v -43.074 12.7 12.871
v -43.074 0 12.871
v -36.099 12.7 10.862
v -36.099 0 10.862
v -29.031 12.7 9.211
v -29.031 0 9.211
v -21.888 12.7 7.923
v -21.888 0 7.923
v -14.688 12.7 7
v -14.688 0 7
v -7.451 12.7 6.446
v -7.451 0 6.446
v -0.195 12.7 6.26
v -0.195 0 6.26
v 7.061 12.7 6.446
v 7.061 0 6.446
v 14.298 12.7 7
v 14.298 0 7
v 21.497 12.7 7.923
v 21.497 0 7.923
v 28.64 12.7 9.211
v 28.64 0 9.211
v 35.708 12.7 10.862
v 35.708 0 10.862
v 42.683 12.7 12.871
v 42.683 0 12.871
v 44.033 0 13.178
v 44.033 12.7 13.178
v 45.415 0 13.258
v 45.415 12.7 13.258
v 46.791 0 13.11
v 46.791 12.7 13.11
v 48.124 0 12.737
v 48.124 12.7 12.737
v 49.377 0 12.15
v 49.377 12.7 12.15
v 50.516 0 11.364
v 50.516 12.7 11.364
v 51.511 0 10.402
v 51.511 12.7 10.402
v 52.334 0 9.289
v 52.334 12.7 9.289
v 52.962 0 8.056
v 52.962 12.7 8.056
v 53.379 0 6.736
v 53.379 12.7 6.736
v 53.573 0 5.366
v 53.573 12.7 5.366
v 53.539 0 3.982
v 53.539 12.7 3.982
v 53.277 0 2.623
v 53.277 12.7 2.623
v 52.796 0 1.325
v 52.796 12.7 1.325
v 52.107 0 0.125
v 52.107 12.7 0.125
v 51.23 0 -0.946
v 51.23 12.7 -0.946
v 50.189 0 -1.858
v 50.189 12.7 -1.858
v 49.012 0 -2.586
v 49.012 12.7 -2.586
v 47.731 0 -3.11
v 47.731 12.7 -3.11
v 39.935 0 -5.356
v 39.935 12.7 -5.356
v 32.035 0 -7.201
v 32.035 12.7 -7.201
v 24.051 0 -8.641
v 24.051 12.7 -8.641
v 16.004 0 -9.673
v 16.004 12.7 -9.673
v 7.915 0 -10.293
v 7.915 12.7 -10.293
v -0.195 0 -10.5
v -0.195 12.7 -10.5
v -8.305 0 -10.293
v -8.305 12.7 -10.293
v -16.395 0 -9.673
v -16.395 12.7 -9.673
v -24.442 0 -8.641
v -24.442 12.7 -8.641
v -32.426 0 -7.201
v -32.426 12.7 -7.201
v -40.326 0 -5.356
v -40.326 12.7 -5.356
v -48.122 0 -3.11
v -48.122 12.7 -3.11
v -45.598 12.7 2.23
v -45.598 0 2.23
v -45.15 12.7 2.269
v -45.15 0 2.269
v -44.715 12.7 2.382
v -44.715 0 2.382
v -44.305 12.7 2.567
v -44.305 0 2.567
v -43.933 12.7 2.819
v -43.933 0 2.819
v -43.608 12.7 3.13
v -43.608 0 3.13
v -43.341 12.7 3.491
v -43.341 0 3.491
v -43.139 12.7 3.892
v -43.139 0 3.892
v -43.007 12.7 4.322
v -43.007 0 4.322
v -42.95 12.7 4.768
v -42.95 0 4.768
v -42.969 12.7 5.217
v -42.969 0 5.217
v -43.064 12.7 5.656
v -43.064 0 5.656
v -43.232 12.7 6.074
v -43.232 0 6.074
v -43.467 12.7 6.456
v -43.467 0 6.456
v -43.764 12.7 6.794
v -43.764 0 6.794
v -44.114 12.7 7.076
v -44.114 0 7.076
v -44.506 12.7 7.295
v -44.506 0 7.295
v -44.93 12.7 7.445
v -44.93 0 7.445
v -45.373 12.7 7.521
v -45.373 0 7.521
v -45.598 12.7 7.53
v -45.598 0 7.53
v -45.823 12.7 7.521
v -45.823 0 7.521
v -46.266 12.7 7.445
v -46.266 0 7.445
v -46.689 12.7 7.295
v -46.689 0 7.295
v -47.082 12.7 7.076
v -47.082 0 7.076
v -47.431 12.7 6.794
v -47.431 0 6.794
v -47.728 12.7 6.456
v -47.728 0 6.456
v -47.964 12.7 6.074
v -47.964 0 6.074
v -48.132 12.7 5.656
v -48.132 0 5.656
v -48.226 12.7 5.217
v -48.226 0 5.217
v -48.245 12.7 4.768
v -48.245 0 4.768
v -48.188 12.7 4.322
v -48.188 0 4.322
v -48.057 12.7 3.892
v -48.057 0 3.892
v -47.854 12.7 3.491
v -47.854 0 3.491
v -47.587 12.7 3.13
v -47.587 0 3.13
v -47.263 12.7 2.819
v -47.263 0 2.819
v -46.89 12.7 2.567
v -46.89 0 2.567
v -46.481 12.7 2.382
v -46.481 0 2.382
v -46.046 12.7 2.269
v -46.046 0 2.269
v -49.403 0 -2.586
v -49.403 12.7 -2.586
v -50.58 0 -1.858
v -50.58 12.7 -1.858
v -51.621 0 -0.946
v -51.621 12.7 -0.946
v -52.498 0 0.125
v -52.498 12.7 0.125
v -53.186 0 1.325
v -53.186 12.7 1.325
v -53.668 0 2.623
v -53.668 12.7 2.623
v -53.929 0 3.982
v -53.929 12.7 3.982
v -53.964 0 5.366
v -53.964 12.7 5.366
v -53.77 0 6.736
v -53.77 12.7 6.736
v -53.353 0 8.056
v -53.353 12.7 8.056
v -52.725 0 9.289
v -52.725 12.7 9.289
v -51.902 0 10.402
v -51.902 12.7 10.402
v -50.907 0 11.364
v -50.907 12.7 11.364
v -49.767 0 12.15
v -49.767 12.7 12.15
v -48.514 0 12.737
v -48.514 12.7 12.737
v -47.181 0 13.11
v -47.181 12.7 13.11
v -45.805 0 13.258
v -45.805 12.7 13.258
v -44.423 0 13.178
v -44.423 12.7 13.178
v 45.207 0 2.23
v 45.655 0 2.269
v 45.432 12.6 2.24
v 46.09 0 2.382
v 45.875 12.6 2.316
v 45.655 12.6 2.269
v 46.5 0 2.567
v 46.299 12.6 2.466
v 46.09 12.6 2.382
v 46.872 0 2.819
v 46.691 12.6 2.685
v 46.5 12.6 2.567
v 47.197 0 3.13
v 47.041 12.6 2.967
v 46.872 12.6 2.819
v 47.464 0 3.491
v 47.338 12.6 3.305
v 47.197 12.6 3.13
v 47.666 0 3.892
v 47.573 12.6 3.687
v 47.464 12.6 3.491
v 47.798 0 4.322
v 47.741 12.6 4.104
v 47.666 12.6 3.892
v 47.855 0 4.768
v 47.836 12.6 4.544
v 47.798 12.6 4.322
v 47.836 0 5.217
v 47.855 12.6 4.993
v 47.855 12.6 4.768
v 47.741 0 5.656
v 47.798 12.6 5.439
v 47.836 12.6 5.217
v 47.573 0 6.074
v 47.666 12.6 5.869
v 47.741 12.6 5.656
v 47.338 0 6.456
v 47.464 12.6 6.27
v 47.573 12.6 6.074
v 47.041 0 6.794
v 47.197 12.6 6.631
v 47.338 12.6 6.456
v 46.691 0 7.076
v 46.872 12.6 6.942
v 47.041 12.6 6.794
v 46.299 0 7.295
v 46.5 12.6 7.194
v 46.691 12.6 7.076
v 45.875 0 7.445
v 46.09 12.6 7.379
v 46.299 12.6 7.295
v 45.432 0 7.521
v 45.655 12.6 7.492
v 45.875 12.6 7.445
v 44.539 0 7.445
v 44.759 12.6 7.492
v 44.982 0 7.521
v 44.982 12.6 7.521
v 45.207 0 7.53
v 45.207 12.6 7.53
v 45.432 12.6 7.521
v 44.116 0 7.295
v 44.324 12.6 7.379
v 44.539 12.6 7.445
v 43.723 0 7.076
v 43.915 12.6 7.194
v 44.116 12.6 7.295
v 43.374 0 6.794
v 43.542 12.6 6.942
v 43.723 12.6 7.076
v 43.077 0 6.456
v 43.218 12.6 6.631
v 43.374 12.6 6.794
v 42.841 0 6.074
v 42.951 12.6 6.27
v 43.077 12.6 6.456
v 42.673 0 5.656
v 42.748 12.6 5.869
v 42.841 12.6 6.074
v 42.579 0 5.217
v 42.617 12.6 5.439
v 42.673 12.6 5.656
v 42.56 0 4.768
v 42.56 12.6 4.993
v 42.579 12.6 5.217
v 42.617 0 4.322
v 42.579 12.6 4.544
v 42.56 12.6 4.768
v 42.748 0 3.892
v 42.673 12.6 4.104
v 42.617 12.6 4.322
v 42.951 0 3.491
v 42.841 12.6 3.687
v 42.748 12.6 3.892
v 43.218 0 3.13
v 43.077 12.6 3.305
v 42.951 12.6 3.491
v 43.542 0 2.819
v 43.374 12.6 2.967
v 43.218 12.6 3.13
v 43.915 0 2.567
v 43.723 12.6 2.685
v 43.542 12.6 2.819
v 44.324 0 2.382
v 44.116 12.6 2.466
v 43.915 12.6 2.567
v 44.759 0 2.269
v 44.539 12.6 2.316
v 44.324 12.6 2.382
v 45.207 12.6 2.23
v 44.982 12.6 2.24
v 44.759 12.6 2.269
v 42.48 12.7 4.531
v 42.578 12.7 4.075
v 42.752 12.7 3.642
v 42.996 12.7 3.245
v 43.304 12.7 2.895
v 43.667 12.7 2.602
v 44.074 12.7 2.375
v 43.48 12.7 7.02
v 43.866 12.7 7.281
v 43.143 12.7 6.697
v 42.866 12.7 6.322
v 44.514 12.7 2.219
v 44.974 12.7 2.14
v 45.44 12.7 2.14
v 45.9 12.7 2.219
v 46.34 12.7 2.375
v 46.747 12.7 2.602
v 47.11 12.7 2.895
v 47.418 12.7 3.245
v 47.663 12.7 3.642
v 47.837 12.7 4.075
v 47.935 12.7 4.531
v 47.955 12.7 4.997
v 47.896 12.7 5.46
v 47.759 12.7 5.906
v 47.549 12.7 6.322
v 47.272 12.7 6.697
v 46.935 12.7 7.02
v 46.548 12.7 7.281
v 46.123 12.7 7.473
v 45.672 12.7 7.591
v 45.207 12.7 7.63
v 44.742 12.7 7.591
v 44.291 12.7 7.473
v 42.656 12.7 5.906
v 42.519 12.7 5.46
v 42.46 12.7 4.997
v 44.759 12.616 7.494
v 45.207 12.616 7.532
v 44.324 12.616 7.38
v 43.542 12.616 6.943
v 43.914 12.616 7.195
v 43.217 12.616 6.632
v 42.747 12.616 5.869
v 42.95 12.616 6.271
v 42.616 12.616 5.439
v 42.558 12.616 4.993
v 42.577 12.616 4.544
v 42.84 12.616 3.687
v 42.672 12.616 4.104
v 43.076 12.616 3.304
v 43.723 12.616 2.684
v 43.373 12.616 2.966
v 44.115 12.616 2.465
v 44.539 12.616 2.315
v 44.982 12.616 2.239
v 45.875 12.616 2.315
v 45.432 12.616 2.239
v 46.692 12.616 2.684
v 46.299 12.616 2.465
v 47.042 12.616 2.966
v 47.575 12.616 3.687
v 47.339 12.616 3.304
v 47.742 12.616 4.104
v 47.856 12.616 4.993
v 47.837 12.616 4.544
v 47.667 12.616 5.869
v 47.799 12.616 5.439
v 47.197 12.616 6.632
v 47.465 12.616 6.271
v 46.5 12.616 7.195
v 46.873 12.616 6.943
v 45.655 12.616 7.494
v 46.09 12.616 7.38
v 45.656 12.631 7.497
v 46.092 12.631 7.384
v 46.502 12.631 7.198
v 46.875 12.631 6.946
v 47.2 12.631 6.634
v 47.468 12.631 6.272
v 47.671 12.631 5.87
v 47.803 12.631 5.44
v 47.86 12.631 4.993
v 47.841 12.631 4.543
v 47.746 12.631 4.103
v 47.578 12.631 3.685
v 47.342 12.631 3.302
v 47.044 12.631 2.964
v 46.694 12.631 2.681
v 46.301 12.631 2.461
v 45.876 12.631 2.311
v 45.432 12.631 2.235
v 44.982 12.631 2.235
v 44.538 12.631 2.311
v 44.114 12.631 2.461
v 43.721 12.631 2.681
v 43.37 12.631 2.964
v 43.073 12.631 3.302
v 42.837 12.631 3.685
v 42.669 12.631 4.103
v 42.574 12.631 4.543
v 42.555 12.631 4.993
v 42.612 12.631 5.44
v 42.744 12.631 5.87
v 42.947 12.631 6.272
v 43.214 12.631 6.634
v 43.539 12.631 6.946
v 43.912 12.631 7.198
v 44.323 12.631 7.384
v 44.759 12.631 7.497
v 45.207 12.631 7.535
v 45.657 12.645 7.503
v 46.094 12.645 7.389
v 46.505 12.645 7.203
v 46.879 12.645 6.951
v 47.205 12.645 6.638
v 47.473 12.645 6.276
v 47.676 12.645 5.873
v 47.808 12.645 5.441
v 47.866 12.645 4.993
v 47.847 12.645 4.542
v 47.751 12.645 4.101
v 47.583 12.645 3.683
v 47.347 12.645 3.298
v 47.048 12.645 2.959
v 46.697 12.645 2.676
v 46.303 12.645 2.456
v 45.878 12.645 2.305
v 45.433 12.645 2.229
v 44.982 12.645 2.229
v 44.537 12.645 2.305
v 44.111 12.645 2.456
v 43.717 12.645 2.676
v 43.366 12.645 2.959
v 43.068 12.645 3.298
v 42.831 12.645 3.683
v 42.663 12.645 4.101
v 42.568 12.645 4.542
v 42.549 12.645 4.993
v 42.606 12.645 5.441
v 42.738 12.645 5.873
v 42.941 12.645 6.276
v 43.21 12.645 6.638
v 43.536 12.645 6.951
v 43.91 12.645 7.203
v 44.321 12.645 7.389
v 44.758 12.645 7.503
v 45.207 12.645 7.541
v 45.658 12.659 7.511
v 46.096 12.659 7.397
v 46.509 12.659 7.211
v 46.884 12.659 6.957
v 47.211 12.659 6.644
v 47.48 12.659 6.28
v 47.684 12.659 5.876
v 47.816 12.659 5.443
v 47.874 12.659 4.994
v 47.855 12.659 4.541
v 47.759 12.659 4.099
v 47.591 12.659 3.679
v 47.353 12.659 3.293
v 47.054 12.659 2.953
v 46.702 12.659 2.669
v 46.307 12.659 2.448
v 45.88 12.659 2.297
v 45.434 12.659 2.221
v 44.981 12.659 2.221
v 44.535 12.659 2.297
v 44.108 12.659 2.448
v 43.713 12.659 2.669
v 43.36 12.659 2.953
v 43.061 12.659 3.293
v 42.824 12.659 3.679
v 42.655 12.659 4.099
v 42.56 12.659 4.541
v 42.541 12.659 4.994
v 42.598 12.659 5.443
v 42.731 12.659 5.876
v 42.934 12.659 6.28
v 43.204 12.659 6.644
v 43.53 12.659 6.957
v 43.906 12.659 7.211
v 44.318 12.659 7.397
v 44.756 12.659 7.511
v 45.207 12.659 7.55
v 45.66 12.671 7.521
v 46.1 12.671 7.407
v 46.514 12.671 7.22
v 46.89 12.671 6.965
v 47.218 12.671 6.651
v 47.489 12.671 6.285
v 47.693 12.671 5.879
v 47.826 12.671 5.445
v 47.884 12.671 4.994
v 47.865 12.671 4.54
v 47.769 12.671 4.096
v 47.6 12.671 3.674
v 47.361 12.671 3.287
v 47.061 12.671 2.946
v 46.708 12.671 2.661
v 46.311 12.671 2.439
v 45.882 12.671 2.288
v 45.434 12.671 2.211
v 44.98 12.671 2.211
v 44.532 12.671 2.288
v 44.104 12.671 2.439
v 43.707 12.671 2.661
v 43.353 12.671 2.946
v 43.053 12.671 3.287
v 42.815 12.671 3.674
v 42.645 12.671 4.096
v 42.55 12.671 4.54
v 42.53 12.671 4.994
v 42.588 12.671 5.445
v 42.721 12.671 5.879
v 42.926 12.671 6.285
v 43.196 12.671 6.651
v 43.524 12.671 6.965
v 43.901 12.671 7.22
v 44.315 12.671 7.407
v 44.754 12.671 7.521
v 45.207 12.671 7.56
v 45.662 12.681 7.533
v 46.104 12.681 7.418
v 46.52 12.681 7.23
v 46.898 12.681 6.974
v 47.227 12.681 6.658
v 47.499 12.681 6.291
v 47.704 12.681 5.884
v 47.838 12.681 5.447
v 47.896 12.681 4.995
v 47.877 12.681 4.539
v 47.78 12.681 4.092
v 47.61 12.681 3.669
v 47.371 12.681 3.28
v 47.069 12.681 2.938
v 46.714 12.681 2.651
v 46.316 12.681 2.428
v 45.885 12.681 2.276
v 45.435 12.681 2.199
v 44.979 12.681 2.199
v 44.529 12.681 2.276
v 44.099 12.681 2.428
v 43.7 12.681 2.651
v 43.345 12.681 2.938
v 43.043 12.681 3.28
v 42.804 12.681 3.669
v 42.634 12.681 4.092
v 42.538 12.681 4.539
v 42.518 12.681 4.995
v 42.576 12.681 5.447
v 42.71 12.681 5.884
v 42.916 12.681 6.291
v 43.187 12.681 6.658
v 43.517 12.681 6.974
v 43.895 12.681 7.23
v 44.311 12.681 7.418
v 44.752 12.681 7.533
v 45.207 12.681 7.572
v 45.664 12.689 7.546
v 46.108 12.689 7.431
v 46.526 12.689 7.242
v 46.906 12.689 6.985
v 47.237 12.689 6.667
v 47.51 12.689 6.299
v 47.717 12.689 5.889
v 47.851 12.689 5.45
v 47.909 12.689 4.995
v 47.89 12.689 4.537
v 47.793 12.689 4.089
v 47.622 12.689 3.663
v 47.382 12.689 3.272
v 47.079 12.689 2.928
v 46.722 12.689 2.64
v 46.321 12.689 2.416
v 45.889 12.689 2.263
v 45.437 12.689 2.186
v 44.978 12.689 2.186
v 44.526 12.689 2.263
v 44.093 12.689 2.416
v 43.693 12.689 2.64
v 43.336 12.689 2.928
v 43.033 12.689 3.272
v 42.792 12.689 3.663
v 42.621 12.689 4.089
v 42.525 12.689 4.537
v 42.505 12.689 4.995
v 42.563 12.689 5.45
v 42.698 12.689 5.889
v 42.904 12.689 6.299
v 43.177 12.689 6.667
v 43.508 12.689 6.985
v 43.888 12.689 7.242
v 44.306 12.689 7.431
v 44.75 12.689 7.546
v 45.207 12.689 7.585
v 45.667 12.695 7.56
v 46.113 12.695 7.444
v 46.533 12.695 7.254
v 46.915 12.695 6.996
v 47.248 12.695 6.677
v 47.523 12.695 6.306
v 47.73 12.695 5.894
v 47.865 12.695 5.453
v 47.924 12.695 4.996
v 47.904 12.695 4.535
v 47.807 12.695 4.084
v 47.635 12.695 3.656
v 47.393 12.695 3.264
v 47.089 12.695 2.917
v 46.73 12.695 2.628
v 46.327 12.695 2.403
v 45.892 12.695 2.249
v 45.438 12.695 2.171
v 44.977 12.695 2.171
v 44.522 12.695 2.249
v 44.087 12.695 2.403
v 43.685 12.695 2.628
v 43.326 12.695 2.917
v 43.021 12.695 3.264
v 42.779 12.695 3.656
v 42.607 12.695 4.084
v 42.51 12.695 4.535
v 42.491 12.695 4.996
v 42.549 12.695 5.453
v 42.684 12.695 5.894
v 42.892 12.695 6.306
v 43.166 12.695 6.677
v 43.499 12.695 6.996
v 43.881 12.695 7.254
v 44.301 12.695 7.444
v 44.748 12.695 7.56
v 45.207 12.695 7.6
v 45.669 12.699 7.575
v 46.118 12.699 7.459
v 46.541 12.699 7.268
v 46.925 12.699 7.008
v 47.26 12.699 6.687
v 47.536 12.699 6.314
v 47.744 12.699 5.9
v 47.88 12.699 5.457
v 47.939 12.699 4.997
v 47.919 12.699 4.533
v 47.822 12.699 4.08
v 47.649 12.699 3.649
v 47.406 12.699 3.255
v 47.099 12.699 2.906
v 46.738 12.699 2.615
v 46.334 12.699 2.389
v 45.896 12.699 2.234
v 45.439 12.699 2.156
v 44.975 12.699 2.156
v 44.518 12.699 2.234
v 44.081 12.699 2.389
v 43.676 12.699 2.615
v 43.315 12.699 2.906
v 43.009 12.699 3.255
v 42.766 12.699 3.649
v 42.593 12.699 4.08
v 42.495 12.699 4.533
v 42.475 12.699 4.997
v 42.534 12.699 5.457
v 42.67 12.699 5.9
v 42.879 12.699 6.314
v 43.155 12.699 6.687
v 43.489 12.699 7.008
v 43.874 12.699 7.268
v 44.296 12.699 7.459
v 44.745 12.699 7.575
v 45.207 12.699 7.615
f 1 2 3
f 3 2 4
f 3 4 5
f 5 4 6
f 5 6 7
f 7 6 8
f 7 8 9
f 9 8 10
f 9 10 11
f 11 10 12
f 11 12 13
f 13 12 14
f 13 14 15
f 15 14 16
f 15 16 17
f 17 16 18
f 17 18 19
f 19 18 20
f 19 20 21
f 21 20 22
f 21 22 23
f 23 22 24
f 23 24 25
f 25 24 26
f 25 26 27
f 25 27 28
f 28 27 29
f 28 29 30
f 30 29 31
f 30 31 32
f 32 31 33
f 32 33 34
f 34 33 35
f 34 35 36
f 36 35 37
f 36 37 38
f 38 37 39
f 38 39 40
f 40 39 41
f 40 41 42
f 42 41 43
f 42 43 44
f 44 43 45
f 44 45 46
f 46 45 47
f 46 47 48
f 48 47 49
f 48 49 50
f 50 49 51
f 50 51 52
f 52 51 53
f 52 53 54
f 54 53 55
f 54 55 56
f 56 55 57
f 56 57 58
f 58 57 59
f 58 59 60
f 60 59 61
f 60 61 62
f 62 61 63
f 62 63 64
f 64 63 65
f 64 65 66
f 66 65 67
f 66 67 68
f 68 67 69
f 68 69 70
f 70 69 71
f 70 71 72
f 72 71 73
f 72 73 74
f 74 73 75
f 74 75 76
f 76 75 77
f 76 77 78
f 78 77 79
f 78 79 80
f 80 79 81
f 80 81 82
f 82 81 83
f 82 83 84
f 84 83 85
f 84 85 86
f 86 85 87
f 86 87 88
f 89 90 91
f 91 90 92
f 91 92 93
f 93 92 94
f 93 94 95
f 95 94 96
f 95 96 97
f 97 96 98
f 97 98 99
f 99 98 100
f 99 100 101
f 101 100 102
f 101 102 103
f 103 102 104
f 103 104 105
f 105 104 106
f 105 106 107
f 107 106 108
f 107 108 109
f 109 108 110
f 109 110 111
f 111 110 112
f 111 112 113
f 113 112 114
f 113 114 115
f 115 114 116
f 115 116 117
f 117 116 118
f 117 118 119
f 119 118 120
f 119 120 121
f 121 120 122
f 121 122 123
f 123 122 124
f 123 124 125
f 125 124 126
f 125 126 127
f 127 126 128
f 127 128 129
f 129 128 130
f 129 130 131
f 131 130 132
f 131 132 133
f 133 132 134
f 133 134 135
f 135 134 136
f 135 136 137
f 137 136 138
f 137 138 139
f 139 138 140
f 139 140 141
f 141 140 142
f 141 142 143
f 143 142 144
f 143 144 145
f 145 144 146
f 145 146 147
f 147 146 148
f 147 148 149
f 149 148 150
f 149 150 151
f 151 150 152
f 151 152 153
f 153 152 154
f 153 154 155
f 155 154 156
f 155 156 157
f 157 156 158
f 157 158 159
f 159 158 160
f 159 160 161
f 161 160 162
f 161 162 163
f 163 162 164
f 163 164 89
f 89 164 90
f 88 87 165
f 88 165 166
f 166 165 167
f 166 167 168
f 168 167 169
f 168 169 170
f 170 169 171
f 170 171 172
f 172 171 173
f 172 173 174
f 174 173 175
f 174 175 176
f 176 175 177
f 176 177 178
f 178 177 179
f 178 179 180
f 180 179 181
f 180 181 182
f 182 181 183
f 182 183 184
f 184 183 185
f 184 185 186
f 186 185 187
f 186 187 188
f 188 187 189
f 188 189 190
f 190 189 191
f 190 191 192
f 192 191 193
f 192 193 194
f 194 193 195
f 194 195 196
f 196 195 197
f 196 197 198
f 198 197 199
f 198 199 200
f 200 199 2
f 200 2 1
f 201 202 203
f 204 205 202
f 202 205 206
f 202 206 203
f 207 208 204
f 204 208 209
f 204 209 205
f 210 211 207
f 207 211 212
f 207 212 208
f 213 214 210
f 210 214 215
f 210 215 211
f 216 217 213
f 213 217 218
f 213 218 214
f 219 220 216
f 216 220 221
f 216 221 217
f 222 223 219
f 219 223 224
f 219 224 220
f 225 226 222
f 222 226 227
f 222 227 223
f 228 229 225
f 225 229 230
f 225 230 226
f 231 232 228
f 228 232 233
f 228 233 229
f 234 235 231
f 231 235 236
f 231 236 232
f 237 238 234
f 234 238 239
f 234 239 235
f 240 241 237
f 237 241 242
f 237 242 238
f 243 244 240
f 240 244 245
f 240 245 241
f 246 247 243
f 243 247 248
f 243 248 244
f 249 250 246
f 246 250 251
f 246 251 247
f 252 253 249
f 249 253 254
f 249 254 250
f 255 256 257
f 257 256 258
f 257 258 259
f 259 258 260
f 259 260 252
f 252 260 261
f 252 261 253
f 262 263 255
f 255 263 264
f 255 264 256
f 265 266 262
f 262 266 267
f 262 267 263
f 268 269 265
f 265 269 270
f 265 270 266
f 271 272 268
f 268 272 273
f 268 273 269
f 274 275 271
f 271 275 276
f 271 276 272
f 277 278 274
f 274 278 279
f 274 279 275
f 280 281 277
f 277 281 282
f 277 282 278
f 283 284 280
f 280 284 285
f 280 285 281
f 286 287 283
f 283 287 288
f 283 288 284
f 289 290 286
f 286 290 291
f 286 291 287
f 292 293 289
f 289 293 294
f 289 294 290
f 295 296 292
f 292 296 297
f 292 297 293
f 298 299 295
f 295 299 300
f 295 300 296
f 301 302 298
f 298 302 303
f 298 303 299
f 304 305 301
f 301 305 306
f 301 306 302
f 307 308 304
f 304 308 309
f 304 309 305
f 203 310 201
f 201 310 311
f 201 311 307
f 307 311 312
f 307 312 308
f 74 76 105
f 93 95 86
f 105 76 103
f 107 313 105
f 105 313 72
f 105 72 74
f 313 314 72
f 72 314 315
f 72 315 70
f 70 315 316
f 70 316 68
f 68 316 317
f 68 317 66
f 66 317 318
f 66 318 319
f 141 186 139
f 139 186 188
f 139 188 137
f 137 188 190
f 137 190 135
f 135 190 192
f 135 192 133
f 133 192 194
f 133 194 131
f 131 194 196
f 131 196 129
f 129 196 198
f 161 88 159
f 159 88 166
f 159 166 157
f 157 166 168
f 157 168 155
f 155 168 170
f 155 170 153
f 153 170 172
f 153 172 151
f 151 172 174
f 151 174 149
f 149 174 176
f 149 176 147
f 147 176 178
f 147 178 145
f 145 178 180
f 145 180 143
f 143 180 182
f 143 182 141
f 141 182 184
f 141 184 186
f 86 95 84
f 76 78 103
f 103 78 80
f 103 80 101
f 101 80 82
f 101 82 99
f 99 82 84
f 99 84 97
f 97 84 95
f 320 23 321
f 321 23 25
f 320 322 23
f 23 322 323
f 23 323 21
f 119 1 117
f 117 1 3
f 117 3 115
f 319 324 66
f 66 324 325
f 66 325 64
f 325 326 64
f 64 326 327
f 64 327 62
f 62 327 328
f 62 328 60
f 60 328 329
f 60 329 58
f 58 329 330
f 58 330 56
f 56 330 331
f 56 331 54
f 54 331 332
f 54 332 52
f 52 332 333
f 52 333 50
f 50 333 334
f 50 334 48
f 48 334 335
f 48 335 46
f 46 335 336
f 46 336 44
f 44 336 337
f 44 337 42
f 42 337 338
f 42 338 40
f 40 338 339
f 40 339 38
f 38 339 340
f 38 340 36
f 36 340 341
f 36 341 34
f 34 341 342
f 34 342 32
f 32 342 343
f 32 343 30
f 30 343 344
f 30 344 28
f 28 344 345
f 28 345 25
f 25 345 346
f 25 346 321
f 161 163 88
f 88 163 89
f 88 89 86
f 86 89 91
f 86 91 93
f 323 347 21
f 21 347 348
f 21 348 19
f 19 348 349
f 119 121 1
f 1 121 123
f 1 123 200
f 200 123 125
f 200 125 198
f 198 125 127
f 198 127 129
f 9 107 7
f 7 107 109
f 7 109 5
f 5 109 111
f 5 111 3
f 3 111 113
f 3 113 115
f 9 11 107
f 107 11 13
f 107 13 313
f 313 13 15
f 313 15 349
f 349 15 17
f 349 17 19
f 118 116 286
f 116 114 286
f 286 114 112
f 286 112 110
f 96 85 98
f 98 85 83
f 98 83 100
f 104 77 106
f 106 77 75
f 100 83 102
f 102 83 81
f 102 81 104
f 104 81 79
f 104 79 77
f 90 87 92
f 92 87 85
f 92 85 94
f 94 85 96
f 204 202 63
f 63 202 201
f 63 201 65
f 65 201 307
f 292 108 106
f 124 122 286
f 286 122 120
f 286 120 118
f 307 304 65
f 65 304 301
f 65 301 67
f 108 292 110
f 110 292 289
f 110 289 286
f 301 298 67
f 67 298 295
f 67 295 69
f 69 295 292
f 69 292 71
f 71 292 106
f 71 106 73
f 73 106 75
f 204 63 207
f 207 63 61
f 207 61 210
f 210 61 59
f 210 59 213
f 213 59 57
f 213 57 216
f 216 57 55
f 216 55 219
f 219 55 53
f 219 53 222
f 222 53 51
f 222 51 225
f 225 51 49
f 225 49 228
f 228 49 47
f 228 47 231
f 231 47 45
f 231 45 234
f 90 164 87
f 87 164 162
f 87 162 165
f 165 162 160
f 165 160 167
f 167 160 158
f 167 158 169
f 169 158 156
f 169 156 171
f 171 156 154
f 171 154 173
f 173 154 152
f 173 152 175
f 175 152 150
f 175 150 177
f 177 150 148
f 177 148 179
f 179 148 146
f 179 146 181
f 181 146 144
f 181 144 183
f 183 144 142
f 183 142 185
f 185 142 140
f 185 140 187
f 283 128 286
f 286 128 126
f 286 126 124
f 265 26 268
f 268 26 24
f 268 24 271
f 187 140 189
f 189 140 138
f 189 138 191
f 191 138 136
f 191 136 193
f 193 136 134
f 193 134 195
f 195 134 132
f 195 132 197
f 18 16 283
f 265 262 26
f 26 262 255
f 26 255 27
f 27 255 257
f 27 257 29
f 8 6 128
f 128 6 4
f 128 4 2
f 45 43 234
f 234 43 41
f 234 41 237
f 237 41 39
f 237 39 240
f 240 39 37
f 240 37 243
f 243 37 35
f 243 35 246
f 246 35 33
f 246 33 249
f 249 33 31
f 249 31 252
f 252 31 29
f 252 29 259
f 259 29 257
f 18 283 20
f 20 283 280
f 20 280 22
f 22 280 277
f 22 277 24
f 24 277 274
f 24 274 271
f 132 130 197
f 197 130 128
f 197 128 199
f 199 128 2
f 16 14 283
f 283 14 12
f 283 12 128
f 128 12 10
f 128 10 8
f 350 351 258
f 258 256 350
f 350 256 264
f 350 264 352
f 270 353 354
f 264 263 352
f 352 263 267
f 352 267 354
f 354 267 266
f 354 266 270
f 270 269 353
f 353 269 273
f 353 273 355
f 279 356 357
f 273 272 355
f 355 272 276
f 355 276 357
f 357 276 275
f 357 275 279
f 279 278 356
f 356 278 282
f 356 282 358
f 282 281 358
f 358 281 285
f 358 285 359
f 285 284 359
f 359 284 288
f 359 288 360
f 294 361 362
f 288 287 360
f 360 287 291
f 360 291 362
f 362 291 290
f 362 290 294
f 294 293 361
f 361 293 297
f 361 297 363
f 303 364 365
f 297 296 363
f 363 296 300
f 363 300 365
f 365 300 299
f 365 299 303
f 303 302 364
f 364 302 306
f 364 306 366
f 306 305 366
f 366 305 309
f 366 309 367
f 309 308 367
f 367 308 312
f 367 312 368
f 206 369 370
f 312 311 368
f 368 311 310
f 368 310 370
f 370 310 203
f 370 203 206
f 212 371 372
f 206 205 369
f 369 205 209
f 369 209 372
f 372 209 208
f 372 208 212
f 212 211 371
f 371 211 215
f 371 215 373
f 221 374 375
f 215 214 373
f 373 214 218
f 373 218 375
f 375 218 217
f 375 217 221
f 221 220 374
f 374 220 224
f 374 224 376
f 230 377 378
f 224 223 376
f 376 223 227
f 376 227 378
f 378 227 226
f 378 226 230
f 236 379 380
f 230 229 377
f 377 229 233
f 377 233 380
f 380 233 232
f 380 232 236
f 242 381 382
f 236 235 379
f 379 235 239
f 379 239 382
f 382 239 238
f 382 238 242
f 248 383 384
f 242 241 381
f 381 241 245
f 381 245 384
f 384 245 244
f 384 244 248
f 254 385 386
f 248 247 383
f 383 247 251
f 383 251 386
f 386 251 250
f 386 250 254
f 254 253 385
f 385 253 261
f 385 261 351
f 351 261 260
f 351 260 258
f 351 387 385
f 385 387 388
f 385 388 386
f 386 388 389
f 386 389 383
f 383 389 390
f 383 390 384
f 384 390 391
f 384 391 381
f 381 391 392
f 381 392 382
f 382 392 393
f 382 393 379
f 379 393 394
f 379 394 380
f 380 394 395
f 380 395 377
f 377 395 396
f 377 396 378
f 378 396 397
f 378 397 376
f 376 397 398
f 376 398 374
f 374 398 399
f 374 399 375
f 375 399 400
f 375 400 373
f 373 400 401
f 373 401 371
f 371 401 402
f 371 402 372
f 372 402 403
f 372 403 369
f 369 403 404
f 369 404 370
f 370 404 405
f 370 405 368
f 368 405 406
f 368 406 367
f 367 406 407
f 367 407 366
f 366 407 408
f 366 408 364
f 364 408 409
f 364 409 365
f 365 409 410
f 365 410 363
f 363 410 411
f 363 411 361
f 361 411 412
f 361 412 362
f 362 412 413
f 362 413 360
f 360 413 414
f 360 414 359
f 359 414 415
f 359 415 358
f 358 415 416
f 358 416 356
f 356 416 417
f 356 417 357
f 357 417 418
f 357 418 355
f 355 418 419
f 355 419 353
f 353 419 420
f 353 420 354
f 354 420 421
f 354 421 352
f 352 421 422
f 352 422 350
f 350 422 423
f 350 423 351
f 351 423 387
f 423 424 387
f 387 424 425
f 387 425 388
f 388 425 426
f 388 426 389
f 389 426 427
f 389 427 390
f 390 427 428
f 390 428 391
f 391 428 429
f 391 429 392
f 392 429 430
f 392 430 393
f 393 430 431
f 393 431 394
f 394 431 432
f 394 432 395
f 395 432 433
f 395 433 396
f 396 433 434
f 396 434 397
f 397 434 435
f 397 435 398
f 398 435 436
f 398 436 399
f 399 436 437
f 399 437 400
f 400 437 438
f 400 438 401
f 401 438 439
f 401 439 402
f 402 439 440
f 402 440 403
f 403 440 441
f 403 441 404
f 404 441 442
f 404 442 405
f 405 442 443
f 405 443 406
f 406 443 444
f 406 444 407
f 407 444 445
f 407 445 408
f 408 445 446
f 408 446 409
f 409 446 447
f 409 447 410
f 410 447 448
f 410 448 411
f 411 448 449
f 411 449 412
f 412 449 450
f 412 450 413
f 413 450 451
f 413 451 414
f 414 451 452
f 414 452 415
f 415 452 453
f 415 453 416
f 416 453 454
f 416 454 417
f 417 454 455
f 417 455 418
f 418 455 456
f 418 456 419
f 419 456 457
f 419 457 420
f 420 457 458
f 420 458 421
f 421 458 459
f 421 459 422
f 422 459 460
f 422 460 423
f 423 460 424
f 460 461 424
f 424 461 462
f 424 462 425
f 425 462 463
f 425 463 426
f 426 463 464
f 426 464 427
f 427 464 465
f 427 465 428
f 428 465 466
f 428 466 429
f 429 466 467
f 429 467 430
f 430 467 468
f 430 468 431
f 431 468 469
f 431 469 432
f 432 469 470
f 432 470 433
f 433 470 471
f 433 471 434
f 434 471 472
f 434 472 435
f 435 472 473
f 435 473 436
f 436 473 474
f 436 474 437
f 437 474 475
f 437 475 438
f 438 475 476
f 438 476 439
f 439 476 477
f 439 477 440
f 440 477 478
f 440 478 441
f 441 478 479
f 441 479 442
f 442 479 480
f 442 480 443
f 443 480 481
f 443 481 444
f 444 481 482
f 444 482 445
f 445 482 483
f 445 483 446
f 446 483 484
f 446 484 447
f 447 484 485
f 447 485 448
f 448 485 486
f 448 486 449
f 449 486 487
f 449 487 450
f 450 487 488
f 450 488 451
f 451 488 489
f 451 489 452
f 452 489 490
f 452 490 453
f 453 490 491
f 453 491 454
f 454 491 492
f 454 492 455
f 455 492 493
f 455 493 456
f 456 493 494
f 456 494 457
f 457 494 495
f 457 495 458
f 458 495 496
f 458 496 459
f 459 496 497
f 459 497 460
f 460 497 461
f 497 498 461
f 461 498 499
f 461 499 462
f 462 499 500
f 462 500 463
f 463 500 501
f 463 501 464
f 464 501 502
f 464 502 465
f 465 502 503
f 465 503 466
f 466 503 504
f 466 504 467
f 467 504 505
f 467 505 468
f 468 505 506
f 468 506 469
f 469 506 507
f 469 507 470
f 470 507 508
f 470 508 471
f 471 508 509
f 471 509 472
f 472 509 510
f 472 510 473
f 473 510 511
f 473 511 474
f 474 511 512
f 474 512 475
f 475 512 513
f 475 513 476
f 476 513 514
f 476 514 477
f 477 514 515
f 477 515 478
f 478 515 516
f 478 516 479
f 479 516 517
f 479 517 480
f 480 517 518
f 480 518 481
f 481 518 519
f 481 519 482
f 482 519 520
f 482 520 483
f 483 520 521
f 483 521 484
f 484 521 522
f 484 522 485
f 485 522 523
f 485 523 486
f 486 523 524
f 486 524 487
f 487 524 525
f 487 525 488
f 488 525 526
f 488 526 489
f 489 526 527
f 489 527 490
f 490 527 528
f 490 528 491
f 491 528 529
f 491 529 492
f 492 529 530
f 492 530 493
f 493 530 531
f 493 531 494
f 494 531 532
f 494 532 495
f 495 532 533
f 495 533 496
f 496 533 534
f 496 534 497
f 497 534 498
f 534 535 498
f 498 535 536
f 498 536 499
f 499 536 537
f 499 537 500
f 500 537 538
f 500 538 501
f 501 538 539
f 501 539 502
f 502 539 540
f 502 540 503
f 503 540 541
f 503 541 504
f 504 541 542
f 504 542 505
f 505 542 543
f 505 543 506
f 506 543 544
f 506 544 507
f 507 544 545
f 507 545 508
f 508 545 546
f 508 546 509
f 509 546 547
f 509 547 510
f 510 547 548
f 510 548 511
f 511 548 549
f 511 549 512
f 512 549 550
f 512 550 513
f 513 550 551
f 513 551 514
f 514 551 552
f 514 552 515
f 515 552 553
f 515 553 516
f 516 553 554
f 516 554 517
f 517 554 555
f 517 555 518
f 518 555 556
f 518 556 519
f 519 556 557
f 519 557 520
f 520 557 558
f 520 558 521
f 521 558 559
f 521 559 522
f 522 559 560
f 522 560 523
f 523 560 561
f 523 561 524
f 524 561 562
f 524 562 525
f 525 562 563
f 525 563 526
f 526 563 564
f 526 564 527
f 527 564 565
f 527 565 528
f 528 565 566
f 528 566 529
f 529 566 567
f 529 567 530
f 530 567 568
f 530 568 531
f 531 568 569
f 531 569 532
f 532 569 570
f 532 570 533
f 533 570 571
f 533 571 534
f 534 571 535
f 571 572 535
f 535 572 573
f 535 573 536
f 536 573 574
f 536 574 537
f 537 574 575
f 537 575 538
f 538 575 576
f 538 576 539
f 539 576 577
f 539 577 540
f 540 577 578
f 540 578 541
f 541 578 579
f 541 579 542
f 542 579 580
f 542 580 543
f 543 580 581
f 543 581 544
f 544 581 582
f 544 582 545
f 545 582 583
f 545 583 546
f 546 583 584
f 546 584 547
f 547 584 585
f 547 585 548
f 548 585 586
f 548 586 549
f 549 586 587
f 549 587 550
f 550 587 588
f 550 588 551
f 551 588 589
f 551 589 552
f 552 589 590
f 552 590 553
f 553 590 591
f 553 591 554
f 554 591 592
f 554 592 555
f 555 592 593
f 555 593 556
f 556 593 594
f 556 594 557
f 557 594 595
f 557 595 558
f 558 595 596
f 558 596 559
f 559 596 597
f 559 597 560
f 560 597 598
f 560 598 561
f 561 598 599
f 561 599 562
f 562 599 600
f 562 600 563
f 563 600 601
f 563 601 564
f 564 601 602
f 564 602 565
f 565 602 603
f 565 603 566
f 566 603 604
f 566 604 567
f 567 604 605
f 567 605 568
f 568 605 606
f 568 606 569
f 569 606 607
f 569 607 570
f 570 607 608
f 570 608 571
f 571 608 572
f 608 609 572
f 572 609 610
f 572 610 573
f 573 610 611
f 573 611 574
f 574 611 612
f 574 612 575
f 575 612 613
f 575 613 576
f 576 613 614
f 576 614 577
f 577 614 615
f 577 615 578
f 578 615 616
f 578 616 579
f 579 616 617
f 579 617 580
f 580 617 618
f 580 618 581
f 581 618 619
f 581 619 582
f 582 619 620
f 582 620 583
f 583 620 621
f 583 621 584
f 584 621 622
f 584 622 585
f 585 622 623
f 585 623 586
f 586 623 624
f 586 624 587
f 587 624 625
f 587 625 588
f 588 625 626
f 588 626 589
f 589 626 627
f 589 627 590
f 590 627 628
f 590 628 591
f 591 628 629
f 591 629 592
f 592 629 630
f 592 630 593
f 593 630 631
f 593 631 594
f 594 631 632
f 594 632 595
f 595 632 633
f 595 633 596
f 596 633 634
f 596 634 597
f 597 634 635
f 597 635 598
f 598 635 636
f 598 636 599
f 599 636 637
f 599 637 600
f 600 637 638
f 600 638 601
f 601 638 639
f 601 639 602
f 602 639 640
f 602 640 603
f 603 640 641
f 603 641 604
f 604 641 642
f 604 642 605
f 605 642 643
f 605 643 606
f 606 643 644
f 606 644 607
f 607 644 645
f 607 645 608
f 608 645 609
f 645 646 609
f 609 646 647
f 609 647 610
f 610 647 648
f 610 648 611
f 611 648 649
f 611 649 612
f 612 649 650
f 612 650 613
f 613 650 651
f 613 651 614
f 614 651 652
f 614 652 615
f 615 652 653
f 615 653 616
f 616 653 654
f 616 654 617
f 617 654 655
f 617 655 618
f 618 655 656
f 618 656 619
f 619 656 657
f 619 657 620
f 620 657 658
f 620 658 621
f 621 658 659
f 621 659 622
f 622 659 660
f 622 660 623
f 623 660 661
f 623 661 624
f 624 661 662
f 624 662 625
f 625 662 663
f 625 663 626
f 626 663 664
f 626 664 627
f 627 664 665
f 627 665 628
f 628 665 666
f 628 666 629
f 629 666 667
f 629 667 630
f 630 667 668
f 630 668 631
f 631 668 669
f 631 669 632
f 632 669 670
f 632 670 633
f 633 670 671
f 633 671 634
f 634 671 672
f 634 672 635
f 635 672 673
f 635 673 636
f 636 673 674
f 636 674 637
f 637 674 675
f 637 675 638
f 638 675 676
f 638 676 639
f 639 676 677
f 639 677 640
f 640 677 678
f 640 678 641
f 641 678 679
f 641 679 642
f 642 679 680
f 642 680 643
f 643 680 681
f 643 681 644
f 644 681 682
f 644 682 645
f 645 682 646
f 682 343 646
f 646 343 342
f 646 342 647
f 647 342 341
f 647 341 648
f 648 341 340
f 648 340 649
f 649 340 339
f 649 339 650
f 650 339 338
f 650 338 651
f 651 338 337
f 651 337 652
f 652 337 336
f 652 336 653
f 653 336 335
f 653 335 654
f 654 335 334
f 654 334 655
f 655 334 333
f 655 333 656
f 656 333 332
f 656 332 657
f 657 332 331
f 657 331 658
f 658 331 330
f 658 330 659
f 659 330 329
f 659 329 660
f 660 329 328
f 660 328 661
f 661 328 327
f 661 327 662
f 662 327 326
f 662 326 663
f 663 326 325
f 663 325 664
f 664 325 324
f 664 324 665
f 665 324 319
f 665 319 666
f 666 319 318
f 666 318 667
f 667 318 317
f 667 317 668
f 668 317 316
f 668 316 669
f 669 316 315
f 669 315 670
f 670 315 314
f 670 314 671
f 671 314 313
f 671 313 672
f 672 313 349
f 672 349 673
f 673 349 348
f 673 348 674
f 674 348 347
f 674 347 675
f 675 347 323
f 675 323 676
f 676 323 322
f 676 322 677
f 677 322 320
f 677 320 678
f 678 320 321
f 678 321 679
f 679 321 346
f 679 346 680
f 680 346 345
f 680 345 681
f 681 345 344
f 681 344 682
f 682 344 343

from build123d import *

# Parameters (mm, degrees)
SKETCH1_R           = 2.65
BOSS_EXTRUDE1_DEPTH = 12.7
FILLET1_R           = 0.1


with BuildPart() as part:
    # Sketch1 → Boss-Extrude1 (new body)
    with BuildSketch(Plane(origin=(0, 0, 0), x_dir=(1, 0, 0), z_dir=(0, 1, 0))):
        with BuildLine():
            ThreePointArc((-48.121775191, 3.110386532), (-53.588631165, -7.404473703), (-43.07377093, -12.871329677))
            ThreePointArc((-43.07377093, -12.871329677), (-0.19527306, -6.260471572), (42.683224809, -12.871329677))
            ThreePointArc((42.683224809, -12.871329677), (53.198085044, -7.404473703), (47.73122907, 3.110386532))
            ThreePointArc((47.73122907, 3.110386532), (-0.19527306, 10.499528428), (-48.121775191, 3.110386532))
        make_face()
        with Locations(Location((-45.59777306, -4.880471572, 0), (0, 0, 270))):
            Circle(SKETCH1_R, mode=Mode.SUBTRACT)
        with Locations(Location((45.20722694, -4.880471572, 0), (0, 0, 270))):
            Circle(SKETCH1_R, mode=Mode.SUBTRACT)
    extrude(amount=BOSS_EXTRUDE1_DEPTH)

    # Fillet1
    fillet1_edges = [part.edges().sort_by_distance(p)[0] for p in [
        (45.20722694, 12.7, 2.230471572),
    ]]
    fillet(fillet1_edges, radius=FILLET1_R)


solid = part.part
